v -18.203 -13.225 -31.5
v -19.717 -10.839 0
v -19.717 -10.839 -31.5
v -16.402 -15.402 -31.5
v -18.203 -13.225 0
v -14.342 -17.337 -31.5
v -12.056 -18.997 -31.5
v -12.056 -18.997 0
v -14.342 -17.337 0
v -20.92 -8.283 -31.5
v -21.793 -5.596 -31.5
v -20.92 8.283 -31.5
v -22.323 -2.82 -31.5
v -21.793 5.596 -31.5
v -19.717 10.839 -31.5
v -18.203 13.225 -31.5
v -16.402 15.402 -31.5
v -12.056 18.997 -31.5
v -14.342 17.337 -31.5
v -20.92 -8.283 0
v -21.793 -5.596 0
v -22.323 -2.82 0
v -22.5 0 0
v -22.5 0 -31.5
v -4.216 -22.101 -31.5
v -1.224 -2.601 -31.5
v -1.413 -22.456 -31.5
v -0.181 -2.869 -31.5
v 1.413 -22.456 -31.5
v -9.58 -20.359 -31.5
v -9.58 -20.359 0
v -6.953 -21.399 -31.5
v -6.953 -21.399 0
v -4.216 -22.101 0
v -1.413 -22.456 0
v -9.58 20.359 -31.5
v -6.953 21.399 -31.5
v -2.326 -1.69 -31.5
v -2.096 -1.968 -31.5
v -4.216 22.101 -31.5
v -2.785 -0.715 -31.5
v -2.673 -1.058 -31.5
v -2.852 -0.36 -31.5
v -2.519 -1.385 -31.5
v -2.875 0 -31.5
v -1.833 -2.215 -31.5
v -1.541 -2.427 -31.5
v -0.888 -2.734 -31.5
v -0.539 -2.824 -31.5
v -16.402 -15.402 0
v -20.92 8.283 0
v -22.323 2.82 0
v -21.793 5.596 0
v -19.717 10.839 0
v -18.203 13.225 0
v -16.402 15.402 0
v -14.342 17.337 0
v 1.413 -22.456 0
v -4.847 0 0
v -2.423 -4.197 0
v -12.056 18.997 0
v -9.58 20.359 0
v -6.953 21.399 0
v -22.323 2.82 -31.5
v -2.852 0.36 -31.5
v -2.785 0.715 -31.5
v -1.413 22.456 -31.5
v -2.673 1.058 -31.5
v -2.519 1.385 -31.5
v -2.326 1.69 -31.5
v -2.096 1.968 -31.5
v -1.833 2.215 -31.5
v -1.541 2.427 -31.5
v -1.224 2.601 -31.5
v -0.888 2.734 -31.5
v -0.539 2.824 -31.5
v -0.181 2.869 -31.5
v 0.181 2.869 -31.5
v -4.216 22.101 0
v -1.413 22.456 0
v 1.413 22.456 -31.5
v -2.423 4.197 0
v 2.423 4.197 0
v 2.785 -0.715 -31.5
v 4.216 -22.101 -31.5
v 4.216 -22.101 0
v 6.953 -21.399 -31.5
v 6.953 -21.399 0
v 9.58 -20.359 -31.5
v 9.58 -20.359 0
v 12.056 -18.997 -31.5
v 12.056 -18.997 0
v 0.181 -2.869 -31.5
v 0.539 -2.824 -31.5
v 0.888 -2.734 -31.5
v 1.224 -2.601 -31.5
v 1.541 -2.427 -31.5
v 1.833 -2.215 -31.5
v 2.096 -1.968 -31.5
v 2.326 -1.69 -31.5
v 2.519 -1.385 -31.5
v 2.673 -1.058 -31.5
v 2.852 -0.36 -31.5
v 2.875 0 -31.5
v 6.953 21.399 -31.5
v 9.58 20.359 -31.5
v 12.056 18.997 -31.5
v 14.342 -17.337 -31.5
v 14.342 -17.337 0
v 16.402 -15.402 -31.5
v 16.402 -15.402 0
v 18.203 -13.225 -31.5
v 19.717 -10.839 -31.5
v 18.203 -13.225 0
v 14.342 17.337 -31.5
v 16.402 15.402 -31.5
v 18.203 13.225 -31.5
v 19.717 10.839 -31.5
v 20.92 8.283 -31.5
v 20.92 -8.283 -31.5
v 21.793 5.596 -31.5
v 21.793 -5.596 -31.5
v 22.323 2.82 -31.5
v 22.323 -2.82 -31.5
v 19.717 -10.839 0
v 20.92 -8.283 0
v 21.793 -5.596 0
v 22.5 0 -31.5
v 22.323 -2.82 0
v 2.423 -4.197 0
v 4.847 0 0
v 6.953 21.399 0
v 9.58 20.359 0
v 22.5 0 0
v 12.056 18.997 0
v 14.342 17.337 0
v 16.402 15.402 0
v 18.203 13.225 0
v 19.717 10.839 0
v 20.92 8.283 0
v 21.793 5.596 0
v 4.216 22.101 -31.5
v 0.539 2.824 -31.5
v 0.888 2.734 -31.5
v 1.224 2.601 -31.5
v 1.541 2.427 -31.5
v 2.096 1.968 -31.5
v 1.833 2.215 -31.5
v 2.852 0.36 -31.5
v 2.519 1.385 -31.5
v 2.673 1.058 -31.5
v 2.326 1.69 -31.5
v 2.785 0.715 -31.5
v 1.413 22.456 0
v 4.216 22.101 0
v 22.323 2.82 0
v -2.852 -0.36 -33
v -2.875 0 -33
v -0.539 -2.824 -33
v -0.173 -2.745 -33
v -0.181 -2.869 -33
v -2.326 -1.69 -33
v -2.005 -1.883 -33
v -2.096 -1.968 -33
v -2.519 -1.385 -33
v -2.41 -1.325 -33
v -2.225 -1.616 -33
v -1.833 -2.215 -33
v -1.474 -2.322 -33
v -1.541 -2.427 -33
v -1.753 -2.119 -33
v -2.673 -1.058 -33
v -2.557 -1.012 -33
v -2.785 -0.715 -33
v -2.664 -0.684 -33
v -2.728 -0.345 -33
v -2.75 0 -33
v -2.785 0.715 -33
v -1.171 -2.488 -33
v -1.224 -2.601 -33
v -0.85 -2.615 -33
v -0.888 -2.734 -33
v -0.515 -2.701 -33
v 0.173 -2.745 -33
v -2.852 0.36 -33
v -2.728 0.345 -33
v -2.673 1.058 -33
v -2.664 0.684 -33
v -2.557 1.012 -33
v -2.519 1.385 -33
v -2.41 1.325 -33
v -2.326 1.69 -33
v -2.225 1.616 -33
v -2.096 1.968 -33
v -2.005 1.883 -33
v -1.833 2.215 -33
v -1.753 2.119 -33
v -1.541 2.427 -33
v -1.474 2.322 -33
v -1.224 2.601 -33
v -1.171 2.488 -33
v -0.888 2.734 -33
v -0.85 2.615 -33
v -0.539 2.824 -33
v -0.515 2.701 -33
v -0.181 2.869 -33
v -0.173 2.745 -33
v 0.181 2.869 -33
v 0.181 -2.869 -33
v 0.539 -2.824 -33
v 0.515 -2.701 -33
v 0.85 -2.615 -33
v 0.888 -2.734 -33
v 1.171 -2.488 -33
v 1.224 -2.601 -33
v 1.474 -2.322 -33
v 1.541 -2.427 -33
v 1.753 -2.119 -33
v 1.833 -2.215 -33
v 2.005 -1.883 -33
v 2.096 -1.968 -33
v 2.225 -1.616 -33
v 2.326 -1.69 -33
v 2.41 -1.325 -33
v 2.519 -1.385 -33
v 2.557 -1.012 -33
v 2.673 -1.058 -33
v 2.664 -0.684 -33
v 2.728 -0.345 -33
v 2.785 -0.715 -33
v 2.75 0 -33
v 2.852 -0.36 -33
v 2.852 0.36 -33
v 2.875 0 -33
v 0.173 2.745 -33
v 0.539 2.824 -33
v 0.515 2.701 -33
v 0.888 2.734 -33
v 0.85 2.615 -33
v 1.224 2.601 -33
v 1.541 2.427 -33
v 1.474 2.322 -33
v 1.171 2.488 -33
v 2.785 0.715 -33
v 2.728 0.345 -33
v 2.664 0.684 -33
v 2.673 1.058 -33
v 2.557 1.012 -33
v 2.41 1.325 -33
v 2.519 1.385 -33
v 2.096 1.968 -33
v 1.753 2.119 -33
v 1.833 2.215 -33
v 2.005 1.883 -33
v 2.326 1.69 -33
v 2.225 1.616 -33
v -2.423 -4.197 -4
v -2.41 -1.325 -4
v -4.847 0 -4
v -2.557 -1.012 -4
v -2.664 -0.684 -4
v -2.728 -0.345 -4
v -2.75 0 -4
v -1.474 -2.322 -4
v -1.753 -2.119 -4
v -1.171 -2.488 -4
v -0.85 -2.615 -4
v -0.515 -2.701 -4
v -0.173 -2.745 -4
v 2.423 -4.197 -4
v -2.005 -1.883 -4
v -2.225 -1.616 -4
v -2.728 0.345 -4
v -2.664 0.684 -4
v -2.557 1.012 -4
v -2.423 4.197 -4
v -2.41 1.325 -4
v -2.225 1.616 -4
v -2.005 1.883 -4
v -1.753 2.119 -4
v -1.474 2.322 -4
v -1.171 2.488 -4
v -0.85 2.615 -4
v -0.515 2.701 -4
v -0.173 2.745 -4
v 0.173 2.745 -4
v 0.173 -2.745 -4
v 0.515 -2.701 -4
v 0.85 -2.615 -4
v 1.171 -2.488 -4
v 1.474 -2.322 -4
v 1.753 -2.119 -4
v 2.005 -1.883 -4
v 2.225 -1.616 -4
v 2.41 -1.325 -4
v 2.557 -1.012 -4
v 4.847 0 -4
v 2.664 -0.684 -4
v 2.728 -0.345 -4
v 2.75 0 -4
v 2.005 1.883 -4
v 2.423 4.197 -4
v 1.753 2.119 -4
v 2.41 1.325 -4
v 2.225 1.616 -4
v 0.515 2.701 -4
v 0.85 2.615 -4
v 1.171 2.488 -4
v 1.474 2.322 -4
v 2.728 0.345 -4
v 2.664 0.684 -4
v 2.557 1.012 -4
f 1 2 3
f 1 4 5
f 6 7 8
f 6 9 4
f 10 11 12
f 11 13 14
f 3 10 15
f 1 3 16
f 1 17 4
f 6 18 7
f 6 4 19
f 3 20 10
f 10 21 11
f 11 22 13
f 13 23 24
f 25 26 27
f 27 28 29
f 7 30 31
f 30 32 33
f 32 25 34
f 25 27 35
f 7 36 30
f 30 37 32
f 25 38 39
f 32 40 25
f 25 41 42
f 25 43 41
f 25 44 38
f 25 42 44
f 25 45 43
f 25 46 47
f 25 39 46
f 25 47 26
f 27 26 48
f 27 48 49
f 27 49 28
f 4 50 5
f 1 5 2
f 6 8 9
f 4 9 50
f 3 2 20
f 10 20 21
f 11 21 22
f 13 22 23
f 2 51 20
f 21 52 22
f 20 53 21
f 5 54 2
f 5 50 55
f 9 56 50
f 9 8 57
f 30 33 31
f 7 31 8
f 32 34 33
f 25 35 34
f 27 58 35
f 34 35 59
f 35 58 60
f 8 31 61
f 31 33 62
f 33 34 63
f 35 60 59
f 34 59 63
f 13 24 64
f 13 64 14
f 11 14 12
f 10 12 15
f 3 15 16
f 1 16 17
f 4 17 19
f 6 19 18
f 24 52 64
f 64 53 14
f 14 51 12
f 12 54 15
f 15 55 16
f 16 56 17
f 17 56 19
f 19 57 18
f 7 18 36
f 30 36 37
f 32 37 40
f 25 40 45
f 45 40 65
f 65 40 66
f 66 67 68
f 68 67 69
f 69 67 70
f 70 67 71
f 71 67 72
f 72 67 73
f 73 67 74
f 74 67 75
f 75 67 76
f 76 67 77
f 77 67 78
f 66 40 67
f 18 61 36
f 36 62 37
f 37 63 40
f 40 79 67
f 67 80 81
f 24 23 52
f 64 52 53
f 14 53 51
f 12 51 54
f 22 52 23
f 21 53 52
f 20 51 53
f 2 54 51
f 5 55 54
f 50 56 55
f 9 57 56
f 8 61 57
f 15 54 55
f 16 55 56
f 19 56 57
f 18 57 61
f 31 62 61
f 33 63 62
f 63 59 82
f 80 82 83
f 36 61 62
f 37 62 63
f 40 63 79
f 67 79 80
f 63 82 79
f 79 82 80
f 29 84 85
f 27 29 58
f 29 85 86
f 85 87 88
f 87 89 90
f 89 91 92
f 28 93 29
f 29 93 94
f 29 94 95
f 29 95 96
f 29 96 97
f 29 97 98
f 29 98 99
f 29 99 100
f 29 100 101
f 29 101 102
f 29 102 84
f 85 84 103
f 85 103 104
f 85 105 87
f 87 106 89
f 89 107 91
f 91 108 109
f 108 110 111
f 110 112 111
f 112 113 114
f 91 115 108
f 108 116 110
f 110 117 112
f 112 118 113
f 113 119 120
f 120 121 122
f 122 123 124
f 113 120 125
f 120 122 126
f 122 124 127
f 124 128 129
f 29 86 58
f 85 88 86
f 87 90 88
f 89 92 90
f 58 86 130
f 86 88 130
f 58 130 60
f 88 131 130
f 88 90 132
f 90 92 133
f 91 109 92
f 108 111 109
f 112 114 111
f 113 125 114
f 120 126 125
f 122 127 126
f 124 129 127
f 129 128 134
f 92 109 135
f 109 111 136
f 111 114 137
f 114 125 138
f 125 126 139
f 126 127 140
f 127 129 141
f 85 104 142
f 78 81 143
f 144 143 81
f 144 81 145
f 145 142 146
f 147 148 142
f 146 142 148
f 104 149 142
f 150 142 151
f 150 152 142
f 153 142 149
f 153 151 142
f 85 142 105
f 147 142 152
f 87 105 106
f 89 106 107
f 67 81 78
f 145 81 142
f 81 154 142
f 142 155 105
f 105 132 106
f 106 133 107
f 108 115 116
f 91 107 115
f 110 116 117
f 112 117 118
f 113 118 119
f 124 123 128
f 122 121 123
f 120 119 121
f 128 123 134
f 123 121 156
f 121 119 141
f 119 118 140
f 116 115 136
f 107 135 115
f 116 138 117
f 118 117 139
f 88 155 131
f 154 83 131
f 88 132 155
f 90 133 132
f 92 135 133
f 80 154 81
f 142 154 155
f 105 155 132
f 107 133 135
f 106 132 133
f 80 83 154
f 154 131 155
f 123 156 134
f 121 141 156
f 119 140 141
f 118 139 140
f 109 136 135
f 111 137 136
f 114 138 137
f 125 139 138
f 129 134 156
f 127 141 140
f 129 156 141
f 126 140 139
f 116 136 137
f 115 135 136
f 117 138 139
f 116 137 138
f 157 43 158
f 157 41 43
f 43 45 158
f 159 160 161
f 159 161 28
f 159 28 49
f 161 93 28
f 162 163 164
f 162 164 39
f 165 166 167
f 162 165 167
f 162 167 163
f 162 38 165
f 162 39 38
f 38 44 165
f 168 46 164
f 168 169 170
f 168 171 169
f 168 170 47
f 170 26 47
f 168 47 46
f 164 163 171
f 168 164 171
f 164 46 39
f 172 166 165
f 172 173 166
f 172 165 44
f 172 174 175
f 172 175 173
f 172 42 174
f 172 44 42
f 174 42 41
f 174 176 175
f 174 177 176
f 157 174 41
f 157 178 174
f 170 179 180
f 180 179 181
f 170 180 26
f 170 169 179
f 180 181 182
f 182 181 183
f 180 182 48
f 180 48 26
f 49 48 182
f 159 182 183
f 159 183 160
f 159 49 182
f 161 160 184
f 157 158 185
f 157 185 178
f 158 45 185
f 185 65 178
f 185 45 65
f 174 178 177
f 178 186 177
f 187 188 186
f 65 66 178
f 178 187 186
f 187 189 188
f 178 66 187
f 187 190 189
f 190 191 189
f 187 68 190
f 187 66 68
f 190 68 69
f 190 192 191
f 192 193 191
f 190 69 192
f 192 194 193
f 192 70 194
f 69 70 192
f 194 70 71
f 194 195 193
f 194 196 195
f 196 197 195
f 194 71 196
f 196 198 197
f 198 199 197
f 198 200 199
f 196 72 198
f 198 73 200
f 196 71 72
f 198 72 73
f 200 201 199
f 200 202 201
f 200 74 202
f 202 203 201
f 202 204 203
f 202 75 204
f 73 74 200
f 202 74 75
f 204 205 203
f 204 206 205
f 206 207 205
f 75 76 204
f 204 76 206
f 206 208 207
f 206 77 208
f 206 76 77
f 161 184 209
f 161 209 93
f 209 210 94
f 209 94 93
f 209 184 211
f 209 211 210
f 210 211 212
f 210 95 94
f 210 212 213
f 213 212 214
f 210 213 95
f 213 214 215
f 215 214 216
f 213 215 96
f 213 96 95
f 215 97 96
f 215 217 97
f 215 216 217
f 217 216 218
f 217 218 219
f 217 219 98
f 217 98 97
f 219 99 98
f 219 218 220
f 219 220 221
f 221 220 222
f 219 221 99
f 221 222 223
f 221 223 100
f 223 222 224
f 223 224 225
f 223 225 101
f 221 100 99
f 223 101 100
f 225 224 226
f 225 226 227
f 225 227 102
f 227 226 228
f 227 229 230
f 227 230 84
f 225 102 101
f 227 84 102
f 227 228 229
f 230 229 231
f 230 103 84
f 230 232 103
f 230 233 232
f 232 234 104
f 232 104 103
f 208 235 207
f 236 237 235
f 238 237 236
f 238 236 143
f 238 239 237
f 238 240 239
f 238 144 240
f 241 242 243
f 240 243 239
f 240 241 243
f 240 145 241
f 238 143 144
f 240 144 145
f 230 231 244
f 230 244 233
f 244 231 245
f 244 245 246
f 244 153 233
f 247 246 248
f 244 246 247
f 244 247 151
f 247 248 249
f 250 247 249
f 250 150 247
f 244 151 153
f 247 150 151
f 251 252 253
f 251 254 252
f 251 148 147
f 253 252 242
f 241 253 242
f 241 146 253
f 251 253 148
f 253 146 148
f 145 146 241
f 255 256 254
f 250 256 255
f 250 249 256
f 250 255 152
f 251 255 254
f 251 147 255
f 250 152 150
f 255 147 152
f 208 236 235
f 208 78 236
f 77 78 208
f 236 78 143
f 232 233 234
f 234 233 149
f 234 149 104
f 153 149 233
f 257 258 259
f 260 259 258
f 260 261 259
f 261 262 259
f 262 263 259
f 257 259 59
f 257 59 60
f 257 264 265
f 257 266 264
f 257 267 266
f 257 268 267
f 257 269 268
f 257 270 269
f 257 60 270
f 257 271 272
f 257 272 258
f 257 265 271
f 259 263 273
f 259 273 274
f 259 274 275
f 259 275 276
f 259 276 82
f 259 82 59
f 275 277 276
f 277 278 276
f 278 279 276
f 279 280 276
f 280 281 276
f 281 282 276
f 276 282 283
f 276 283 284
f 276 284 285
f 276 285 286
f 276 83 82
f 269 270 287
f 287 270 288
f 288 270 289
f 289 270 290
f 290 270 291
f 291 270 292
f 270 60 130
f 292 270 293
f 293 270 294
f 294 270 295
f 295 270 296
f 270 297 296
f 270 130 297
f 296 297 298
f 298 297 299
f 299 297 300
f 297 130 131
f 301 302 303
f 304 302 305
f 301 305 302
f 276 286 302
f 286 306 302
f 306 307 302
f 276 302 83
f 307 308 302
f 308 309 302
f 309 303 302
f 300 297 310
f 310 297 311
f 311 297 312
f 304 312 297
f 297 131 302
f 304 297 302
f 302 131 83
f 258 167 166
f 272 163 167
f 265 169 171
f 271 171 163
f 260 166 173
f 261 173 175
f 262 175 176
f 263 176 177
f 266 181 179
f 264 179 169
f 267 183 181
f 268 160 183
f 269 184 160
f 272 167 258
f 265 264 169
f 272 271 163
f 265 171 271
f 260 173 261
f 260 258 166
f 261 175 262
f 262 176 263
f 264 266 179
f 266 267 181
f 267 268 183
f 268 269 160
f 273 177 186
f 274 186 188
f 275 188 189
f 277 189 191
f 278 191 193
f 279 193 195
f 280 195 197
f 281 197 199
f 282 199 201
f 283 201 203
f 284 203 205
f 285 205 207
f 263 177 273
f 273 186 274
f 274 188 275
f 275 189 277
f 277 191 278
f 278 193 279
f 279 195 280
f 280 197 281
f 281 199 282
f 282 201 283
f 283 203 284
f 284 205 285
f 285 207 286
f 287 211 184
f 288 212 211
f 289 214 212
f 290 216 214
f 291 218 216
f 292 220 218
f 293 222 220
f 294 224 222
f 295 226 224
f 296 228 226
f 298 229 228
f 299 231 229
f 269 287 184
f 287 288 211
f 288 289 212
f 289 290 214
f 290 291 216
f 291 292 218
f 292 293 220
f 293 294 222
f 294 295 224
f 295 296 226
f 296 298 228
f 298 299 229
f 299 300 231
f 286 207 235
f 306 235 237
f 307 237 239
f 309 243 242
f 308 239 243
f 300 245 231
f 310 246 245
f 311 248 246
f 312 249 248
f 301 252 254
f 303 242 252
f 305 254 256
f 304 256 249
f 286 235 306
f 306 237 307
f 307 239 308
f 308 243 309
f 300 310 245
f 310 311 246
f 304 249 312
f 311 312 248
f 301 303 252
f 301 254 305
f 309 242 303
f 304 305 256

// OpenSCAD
$fn = 50;

difference() {
	union() {
		translate(v = [0, 0, -31.5]) {
			cylinder(h = 31.5, r = 22.5);
		}
		#translate(v = [0, 0, -33.0]) {
			cylinder(h = 33, r = 2.875);
		}
	}
	union() {
		translate(v = [0, 0, 0]) {
			rotate(a = [0, 0, 0]) {
				difference() {
					union() {
						translate(v = [0, 0, -4]) {
							linear_extrude(height = 4) {
								polygon(points = [[4.8468, 0.0], [2.4234000000000004, 4.197451927062417], [-2.423399999999999, 4.197451927062417], [-4.8468, 5.935618106107392e-16], [-2.423400000000002, -4.197451927062416], [2.423399999999997, -4.197451927062419]]);
							}
						}
					}
					union();
				}
			}
		}
		#translate(v = [0, 0, -100.0]) {
			cylinder(h = 200, r = 2.75);
		}
	}
}
